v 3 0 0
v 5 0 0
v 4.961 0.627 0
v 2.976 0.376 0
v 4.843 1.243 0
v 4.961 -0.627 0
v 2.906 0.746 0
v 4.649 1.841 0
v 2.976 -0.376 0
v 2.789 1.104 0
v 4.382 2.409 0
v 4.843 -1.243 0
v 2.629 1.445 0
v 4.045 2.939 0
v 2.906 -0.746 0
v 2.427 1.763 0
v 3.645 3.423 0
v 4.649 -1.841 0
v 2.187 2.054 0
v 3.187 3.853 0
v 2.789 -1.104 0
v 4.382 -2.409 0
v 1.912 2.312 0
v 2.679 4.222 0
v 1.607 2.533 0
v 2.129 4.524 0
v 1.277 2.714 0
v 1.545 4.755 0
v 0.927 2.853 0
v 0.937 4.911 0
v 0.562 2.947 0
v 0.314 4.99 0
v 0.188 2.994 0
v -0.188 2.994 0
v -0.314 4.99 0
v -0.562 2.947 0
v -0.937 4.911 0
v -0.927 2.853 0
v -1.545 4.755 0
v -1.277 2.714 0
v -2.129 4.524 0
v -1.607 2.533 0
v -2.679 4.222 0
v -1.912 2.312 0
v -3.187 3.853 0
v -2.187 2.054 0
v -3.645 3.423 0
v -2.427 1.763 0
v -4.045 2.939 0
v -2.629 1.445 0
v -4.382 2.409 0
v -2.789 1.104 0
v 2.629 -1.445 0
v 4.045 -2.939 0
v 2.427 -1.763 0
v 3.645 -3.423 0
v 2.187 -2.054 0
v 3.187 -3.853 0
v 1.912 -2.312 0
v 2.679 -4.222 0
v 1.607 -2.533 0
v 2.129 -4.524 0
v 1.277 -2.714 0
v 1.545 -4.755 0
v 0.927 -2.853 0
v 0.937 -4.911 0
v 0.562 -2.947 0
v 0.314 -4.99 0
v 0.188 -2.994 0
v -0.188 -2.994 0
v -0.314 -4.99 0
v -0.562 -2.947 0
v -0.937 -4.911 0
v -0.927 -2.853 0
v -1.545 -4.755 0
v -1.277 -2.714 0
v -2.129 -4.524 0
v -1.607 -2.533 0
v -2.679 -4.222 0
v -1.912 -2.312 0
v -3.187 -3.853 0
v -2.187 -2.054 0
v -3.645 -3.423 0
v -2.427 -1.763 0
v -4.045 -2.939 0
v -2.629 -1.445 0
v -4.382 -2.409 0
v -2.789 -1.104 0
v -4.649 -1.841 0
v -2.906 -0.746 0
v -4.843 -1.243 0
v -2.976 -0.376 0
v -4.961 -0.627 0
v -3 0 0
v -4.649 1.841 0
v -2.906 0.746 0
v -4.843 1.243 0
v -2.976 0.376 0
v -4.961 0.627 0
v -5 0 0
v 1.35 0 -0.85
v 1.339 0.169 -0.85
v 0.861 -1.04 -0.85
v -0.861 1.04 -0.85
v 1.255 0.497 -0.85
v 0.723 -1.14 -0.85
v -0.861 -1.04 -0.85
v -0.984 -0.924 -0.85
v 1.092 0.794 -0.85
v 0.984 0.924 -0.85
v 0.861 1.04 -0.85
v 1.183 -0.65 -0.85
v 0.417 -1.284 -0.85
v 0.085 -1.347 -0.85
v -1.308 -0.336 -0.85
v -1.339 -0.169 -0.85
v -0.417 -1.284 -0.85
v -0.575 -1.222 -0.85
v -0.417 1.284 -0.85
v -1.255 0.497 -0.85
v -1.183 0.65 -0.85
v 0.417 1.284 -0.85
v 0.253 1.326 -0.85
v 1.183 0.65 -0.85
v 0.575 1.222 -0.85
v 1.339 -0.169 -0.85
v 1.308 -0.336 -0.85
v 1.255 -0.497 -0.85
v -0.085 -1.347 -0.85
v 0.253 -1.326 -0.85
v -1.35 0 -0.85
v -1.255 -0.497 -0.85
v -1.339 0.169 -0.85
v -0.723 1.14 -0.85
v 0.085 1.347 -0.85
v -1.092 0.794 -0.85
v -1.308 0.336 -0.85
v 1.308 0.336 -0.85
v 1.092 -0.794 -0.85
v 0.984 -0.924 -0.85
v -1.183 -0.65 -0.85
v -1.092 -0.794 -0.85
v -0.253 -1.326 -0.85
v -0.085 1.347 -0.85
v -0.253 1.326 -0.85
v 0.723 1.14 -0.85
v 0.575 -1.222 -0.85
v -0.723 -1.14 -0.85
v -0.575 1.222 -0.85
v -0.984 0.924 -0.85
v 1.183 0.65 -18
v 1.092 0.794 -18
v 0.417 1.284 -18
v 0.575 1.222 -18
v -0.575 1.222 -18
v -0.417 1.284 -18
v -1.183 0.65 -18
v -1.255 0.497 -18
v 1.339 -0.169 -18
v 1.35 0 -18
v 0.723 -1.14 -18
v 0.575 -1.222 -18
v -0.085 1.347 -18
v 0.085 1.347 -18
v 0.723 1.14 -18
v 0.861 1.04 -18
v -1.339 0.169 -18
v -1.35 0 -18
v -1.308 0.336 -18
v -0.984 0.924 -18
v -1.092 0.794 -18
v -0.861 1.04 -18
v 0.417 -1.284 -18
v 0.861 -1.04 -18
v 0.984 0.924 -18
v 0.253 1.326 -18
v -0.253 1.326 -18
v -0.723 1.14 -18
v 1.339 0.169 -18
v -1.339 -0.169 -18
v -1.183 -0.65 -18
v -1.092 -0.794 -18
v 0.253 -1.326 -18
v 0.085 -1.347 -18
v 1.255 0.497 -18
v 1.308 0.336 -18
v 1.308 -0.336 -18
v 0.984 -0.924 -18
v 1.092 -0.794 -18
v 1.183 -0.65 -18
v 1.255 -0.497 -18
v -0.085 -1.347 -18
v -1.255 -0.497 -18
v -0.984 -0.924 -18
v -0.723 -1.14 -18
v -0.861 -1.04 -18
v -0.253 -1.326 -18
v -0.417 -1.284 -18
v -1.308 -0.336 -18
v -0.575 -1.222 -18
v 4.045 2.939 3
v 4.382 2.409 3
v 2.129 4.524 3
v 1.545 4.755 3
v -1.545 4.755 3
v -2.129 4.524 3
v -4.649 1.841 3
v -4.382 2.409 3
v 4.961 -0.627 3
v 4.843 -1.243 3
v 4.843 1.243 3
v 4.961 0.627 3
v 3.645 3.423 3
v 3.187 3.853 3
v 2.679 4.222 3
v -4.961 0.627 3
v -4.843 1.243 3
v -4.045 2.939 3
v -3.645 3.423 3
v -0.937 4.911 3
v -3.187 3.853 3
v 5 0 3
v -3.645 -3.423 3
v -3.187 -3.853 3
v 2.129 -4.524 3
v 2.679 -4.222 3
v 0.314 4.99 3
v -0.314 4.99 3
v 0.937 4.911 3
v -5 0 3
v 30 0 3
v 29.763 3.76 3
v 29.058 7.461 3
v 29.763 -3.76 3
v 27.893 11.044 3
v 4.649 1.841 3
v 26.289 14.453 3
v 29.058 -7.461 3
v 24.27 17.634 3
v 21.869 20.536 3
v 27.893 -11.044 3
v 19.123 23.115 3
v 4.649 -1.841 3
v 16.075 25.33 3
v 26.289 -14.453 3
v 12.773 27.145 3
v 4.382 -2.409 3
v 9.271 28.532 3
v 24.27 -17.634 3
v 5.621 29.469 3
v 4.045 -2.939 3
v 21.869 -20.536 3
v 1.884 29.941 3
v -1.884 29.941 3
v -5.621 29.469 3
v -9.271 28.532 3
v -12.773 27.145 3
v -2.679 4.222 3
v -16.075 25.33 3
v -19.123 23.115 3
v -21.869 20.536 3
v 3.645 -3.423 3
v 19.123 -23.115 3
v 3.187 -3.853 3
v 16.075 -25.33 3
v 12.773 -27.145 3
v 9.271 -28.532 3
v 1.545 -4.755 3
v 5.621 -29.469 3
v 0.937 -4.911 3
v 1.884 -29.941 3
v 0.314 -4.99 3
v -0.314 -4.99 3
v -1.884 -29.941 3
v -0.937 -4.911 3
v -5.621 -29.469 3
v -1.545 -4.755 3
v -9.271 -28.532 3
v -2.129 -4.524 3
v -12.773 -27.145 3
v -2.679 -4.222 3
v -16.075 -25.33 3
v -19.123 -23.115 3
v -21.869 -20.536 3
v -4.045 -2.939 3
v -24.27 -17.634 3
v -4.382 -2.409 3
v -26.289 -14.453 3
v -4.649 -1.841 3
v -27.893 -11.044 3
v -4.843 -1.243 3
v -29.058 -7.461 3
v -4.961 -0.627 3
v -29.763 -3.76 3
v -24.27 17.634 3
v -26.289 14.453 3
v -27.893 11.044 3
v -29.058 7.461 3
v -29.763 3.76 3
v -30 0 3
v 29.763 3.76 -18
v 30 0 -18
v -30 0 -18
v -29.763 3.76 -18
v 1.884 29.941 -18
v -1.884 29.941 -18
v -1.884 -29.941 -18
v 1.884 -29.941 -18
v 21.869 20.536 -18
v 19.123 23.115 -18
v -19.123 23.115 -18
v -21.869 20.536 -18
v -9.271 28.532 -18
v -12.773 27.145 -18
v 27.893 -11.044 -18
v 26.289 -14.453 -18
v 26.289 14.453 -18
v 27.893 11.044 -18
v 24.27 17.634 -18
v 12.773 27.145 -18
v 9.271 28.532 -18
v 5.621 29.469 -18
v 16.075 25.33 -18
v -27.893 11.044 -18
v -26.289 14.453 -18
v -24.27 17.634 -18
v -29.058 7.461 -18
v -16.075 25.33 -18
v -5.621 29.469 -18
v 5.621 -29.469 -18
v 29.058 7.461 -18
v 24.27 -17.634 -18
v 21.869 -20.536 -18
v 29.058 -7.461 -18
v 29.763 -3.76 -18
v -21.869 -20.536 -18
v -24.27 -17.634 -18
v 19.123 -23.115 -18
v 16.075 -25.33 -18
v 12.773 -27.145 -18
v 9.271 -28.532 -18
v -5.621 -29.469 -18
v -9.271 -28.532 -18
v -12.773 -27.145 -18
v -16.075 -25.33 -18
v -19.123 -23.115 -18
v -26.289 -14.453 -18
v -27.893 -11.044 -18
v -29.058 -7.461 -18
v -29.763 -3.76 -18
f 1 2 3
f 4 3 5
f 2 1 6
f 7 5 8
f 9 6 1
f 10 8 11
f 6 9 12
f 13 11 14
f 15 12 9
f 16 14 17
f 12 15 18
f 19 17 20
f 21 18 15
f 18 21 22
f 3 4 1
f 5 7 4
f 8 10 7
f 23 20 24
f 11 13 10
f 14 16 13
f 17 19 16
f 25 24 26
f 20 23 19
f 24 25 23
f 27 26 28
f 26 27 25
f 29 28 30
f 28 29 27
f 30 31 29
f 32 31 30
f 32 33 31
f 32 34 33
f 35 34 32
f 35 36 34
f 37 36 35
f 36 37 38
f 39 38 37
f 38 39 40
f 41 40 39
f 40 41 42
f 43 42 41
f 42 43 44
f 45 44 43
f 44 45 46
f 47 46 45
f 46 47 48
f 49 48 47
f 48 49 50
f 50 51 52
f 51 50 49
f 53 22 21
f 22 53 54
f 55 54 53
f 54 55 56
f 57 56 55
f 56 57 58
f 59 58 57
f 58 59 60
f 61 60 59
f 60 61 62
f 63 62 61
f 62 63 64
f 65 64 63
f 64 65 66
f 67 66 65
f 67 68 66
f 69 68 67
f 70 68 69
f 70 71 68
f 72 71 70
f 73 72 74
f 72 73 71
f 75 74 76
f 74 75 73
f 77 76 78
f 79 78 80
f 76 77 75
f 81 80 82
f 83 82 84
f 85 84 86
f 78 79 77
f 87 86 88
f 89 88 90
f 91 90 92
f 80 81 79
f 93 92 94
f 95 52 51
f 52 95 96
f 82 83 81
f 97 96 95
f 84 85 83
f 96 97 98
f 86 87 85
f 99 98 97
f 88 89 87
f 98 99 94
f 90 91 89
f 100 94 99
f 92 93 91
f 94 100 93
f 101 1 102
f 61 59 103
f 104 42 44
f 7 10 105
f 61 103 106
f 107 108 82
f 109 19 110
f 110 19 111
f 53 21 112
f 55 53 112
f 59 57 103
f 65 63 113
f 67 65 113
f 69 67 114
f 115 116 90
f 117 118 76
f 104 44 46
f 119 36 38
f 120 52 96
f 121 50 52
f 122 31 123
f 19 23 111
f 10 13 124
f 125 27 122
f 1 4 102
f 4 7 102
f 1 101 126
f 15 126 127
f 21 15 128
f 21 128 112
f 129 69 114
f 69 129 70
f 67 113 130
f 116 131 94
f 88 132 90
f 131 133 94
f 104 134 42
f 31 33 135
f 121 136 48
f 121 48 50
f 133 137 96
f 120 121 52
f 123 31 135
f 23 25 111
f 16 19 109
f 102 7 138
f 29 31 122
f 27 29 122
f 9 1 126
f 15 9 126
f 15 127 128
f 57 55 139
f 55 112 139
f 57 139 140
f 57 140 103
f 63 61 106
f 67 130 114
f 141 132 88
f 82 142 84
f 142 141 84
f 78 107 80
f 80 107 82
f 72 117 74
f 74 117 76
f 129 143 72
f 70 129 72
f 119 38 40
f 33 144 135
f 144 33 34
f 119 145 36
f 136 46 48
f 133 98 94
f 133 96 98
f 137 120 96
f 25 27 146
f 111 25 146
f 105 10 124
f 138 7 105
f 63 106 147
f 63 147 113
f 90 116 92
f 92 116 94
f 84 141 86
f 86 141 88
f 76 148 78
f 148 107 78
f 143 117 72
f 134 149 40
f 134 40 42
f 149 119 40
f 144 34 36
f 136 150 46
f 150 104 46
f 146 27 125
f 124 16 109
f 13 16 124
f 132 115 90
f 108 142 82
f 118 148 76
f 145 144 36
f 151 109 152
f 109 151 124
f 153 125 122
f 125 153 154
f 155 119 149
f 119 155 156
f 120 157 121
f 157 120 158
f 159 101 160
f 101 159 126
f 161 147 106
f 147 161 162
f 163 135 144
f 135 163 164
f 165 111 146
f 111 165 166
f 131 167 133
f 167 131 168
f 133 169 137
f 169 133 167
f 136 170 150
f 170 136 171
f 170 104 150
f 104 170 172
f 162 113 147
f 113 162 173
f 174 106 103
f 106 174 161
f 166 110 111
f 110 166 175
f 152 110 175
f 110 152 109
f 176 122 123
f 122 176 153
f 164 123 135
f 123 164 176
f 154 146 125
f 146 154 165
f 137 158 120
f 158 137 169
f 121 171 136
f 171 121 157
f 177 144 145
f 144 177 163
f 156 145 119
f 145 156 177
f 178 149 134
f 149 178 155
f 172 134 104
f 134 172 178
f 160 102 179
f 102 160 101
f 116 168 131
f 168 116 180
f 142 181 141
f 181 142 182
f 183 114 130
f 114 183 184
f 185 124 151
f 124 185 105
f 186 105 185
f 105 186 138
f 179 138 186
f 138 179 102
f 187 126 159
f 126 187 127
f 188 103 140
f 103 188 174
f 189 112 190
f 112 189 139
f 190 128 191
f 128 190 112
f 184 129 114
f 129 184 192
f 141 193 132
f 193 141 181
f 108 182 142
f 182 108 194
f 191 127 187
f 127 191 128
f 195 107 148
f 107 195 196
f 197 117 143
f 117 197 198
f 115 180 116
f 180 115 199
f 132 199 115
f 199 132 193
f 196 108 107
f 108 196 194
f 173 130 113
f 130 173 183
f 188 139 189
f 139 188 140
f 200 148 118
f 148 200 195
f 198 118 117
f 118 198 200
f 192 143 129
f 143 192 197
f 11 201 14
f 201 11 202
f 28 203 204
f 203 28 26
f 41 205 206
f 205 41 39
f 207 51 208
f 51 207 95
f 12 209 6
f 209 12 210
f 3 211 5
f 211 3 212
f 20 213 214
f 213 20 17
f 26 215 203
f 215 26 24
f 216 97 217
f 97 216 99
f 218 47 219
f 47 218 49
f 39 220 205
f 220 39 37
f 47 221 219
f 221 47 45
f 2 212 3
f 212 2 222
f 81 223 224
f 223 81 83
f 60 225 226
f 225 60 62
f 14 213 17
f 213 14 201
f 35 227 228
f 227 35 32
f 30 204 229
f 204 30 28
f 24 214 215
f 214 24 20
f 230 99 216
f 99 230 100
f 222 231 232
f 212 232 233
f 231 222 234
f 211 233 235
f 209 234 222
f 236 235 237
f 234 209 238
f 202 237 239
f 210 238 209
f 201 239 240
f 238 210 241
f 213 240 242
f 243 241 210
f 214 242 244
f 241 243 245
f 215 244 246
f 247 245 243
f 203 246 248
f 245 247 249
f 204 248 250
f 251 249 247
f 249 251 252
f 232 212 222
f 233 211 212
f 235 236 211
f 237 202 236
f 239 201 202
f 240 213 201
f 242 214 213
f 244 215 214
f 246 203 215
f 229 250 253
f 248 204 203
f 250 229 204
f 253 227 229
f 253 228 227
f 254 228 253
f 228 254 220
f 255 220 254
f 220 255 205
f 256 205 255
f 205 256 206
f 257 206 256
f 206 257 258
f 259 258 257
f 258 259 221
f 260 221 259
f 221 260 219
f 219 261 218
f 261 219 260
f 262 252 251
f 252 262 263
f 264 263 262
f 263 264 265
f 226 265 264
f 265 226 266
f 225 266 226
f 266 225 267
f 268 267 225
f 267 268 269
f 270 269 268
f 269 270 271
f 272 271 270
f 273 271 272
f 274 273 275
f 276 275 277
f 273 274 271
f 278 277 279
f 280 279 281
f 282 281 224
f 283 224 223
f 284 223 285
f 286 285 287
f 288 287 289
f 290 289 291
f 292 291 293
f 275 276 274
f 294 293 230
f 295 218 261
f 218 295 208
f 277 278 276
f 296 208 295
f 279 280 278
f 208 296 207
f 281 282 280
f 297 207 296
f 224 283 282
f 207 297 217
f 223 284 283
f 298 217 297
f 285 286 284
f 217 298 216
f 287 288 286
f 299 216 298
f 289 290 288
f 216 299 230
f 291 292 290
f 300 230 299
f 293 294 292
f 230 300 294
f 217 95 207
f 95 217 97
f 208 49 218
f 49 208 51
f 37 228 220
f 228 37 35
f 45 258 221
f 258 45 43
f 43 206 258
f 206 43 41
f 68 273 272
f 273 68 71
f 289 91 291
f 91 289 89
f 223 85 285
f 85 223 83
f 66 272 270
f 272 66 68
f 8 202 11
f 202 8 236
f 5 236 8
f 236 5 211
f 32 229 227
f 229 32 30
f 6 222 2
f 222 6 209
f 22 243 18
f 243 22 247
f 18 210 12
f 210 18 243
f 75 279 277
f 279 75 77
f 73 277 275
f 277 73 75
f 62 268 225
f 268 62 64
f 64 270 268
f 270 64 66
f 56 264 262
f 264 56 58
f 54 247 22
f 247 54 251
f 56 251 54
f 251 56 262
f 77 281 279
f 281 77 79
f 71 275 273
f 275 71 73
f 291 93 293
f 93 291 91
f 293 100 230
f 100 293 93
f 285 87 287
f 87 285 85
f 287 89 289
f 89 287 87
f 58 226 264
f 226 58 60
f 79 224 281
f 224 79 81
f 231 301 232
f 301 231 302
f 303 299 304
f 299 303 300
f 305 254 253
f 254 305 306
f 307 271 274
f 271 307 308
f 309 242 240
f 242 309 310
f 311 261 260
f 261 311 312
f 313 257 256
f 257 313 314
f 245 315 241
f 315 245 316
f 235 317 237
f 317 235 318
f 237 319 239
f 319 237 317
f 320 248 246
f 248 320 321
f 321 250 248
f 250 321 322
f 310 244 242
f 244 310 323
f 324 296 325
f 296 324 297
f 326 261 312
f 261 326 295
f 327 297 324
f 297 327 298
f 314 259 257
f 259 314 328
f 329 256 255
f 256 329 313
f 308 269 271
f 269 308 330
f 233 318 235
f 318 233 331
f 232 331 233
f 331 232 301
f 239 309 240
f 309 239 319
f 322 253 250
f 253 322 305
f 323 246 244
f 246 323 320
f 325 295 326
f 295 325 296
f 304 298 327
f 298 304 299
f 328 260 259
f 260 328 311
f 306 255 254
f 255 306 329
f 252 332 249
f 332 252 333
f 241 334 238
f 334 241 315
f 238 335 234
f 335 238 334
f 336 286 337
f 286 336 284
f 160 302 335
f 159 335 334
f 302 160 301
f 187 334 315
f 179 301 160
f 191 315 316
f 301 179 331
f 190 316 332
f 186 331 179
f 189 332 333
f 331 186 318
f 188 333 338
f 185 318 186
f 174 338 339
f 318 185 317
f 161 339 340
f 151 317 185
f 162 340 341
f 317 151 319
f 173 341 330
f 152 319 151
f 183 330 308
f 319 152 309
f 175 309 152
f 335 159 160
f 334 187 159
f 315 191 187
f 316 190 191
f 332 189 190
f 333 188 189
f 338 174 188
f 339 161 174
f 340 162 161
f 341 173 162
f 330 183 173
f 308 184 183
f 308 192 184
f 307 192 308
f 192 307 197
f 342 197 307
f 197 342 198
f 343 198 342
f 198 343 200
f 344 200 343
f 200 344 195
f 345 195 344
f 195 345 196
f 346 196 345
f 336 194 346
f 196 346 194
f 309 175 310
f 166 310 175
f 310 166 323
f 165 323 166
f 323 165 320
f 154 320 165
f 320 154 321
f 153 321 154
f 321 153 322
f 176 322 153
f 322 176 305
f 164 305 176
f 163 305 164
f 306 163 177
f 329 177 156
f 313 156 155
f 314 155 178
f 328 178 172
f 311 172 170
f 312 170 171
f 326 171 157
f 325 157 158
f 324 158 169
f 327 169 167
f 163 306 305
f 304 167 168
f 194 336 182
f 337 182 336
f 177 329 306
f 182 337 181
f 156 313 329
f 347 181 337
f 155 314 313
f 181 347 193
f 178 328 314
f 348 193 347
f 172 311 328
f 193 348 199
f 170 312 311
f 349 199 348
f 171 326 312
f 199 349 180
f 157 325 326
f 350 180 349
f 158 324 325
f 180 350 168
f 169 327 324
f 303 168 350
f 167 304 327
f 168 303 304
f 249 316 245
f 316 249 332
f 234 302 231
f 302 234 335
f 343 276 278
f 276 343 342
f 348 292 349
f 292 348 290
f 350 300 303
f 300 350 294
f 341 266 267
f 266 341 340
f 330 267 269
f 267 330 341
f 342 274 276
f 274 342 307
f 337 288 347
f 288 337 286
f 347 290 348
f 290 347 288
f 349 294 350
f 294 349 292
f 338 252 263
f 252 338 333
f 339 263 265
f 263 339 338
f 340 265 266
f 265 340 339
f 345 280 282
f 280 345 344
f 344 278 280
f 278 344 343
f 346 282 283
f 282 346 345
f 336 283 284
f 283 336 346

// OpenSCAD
$fn = 50;

difference() {
	union() {
		translate(v = [0, 0, -18.0]) {
			cylinder(h = 21, r = 30.0);
		}
	}
	union() {
		translate(v = [0, 0, 0]) {
			rotate(a = [0, 0, 0]) {
				difference() {
					union() {
						translate(v = [0, 0, -21.0]) {
							cylinder(h = 21, r = 1.0);
						}
						translate(v = [0, 0, -0.85]) {
							cylinder(h = 0.85, r1 = 1.35, r2 = 3.0);
						}
						translate(v = [0, 0, -21.0]) {
							cylinder(h = 21, r = 1.35);
						}
						translate(v = [0, 0, -21.0]) {
							cylinder(h = 21, r = 1.0);
						}
					}
					union();
				}
			}
		}
		#cylinder(h = 3, r = 5.0);
	}
}
